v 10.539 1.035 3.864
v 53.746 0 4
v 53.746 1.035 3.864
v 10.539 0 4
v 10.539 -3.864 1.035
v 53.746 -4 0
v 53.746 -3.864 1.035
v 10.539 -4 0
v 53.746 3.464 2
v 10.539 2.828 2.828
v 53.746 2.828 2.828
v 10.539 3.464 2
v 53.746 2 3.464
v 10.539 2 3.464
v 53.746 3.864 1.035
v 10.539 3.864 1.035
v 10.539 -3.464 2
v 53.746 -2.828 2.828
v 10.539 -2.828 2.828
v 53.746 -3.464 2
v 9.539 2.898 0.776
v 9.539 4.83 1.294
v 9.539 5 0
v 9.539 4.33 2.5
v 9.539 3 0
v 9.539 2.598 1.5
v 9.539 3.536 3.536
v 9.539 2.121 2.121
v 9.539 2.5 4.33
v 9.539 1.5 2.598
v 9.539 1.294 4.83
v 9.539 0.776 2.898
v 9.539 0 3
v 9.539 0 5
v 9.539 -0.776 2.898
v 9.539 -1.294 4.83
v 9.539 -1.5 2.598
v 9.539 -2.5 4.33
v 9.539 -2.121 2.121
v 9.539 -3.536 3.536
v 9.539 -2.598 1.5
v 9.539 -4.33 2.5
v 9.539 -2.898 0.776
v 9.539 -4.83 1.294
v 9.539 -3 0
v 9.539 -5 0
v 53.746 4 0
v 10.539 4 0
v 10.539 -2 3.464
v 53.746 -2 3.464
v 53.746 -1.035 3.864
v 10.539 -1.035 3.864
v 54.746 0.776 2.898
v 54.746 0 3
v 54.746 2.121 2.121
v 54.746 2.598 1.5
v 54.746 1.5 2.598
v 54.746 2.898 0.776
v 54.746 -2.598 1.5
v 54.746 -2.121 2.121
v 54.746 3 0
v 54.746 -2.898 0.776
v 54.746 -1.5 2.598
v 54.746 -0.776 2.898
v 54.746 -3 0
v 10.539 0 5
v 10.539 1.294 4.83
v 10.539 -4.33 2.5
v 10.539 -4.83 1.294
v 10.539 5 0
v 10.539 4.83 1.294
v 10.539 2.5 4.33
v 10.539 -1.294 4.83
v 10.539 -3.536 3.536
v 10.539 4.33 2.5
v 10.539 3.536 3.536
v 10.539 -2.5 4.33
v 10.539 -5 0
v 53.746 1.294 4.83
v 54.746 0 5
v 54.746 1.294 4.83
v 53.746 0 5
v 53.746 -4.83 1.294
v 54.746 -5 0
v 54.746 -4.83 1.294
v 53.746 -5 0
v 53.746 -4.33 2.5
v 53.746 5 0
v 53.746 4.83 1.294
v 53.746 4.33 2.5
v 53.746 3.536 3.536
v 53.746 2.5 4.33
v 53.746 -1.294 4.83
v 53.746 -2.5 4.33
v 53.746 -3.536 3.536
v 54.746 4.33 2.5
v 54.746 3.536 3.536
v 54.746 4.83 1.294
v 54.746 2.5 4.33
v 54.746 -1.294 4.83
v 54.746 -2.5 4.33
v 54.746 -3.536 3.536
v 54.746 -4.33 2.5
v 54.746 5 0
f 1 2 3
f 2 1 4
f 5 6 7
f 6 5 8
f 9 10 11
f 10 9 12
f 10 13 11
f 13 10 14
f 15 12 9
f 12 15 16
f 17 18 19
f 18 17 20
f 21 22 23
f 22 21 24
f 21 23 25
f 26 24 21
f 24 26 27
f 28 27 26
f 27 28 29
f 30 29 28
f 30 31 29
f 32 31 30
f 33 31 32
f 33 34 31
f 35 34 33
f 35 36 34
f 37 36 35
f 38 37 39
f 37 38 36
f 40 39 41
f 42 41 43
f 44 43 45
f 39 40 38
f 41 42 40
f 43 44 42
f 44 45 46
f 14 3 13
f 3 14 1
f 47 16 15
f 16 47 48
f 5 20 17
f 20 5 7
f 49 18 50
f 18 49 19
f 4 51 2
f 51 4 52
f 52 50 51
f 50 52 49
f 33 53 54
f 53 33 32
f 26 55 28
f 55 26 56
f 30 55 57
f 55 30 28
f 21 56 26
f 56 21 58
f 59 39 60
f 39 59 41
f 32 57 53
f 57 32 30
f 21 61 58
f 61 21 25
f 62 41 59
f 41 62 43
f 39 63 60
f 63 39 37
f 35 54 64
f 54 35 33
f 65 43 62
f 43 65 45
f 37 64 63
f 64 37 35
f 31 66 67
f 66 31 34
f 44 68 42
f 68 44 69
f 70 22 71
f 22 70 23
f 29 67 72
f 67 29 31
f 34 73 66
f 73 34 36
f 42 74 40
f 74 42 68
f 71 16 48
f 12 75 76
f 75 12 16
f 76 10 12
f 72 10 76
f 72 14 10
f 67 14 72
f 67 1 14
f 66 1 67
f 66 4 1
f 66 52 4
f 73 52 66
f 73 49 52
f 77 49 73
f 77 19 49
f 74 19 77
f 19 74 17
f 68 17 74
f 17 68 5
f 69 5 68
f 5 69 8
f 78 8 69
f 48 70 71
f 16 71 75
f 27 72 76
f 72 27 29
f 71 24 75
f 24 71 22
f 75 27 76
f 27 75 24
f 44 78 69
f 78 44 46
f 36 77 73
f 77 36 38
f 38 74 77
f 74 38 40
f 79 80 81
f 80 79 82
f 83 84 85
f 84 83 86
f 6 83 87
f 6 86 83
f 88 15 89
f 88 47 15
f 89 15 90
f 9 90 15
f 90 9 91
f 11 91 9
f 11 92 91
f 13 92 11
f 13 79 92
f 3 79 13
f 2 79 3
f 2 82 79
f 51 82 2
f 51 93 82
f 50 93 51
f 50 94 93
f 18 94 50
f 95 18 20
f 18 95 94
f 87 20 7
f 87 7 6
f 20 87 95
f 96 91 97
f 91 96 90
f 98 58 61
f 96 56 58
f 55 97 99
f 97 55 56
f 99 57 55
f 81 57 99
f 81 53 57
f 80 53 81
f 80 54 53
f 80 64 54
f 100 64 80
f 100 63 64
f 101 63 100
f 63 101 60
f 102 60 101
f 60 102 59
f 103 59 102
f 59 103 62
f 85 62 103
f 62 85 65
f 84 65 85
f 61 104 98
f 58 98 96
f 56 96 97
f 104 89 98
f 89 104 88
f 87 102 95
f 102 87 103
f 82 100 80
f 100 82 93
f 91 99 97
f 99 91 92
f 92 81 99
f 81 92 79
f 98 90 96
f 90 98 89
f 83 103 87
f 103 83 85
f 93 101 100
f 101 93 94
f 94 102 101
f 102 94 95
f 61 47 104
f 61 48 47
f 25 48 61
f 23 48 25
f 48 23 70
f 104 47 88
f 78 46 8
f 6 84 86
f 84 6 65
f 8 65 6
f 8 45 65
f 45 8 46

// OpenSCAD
// file: ../build_environments.scad
// build_environments.scad: modules to build level sections
//

module pool(diameter=10.0, wall_height=2.0, step_width=3.0, connections=[])
{
    difference() {
        union() {
        difference() {
            cylinder(h=0.5,r1=diameter+step_width,r2=diameter+step_width,$fn=48);
            translate([0,0,-0.1])
                cylinder(h=0.7,r1=diameter,r2=diameter,$fn=48);
        }
        difference() {
            cylinder(h=wall_height,r1=diameter+step_width+1.0,r2=diameter+step_width+1.0,$fn=48);
            translate([0,0,-0.1])
                cylinder(h=wall_height+0.2,r1=diameter+step_width,r2=diameter+step_width,$fn=48);
        }
        }
    
        for (c = connections)
        {
            rotate([0,90,0]) {
                angle = atan2(c[1],c[0]);
                rotate([-angle,0,0]) {
                    cylinder(h=diameter+5.0,r1=c[2],r2=c[2],$fn=48);
                }
            }
        }
    }
}

module straight(length=10.0, width=2.0, dy1=0.0, dy2=0.0, dz=0.0)
{
    dims = [0, 0, 0, 0, 0, (dz/length)];
    matrix = [
        [ 1, dims[0], dims[1], 0 ],
        [ dims[2], 1, dims[4], 0 ],
        [ dims[5], dims[3], 1, 0 ],
        [ 0, 0, 0, 1 ]
    ];
    multmatrix(matrix)
    difference() {
        translate([dy1,0,0])
        union() {
            rotate([0,90,0]) {
                difference() {
                    cylinder(h=(length-dy1-dy2),r1=width+1.0,r2=width+1.0,$fn=24);
                    translate([0,0,-0.1])
                        cylinder(h=(length-dy1-dy2+0.2),r1=width,r2=width,$fn=24);
                }
                difference() {
                    cylinder(h=1.0,r1=width+2.0,r2=width+2.0,$fn=24);
                    translate([0,0,-0.1])
                        cylinder(h=1.2,r1=width,r2=width,$fn=24);
                }
                translate([0,0,(length-dy1-dy2)-1.0]) {
                    difference() {
                        cylinder(h=1.0,r1=width+2.0,r2=width+2.0,$fn=24);
                        translate([0,0,-0.1])
                            cylinder(h=1.2,r1=width,r2=width,$fn=24);
                    }
                }
            }
        }
        translate([0,0,-(2*width+4.0)/2])
            cube([3*length,3*length,2*width+4.0],center=true);
    }
}

module curve(p0=[0,0], center=[0,0], dir=1, angle=0.0, width=2.0)
{
    radius = sqrt((p0[0]-center[0])*(p0[0]-center[0]) + (p0[1]-center[1])*(p0[1]-center[1]));
    if (dir == 0) {
        difference() {
            rotate([0,0,-90])
            difference() {
                rotate_extrude(angle = angle, convexity = 10, $fn=32)
                    translate([radius, 0, 0])
                        circle(r = width+1.0,$fn=24);
                rotate([0,0,-1.0])
                    rotate_extrude(angle = angle+2.0, convexity = 10, $fn=32)
                        translate([radius, 0, 0])
                            circle(r = width,$fn=24);
            }
            translate([0,0,-(2*width+4.0)/2])
                cube([5*radius,5*radius,2*width+4.0],center=true);
        }
    }
    else {
        difference() {
            rotate([0,0,90])
            difference() {
                rotate_extrude(angle = -angle, convexity = 10, $fn=32)
                    translate([radius, 0, 0])
                        circle(r = width+1.0,$fn=24);
                rotate([0,0,1.0])
                    rotate_extrude(angle = -angle-2.0, convexity = 10, $fn=32)
                        translate([radius, 0, 0])
                            circle(r = width,$fn=24);
            }
            translate([0,0,-(2*width+4.0)/2])
                cube([5*radius,5*radius,2*width+4.0],center=true);
        }
    }

}

// test pool
//pool(diameter=12.0000, wall_height=3.0000, step_width=3.0000, connections=[[0.0000,-26.0000,2.0000], [23.6074,0.0000,2.0000]]);

// test straight, slope
//straight(length=26.0000, width=2.0000, dy1=11.8322, dy2=6.7082, dz=0.0000);
//straight(length=29.1549, width=12.0000, dy1=0.0000, dy2=0.0000, dz=-15.0000);

// test curve
//curve(p0=[23.6074, 0.0000], center=[23.6074, 5.0000], dir=0, angle=60.1011, width=2.0000);
//curve(p0=[33.6426, 12.4219], center=[37.9771, 9.9295], dir=1, angle=120.4627, width=2.0000);
// main file
use <../build_environments.scad>;
straight(length=54.7456, width=3.0000, dy1=9.5394, dy2=0.0000, dz=0.0000);
